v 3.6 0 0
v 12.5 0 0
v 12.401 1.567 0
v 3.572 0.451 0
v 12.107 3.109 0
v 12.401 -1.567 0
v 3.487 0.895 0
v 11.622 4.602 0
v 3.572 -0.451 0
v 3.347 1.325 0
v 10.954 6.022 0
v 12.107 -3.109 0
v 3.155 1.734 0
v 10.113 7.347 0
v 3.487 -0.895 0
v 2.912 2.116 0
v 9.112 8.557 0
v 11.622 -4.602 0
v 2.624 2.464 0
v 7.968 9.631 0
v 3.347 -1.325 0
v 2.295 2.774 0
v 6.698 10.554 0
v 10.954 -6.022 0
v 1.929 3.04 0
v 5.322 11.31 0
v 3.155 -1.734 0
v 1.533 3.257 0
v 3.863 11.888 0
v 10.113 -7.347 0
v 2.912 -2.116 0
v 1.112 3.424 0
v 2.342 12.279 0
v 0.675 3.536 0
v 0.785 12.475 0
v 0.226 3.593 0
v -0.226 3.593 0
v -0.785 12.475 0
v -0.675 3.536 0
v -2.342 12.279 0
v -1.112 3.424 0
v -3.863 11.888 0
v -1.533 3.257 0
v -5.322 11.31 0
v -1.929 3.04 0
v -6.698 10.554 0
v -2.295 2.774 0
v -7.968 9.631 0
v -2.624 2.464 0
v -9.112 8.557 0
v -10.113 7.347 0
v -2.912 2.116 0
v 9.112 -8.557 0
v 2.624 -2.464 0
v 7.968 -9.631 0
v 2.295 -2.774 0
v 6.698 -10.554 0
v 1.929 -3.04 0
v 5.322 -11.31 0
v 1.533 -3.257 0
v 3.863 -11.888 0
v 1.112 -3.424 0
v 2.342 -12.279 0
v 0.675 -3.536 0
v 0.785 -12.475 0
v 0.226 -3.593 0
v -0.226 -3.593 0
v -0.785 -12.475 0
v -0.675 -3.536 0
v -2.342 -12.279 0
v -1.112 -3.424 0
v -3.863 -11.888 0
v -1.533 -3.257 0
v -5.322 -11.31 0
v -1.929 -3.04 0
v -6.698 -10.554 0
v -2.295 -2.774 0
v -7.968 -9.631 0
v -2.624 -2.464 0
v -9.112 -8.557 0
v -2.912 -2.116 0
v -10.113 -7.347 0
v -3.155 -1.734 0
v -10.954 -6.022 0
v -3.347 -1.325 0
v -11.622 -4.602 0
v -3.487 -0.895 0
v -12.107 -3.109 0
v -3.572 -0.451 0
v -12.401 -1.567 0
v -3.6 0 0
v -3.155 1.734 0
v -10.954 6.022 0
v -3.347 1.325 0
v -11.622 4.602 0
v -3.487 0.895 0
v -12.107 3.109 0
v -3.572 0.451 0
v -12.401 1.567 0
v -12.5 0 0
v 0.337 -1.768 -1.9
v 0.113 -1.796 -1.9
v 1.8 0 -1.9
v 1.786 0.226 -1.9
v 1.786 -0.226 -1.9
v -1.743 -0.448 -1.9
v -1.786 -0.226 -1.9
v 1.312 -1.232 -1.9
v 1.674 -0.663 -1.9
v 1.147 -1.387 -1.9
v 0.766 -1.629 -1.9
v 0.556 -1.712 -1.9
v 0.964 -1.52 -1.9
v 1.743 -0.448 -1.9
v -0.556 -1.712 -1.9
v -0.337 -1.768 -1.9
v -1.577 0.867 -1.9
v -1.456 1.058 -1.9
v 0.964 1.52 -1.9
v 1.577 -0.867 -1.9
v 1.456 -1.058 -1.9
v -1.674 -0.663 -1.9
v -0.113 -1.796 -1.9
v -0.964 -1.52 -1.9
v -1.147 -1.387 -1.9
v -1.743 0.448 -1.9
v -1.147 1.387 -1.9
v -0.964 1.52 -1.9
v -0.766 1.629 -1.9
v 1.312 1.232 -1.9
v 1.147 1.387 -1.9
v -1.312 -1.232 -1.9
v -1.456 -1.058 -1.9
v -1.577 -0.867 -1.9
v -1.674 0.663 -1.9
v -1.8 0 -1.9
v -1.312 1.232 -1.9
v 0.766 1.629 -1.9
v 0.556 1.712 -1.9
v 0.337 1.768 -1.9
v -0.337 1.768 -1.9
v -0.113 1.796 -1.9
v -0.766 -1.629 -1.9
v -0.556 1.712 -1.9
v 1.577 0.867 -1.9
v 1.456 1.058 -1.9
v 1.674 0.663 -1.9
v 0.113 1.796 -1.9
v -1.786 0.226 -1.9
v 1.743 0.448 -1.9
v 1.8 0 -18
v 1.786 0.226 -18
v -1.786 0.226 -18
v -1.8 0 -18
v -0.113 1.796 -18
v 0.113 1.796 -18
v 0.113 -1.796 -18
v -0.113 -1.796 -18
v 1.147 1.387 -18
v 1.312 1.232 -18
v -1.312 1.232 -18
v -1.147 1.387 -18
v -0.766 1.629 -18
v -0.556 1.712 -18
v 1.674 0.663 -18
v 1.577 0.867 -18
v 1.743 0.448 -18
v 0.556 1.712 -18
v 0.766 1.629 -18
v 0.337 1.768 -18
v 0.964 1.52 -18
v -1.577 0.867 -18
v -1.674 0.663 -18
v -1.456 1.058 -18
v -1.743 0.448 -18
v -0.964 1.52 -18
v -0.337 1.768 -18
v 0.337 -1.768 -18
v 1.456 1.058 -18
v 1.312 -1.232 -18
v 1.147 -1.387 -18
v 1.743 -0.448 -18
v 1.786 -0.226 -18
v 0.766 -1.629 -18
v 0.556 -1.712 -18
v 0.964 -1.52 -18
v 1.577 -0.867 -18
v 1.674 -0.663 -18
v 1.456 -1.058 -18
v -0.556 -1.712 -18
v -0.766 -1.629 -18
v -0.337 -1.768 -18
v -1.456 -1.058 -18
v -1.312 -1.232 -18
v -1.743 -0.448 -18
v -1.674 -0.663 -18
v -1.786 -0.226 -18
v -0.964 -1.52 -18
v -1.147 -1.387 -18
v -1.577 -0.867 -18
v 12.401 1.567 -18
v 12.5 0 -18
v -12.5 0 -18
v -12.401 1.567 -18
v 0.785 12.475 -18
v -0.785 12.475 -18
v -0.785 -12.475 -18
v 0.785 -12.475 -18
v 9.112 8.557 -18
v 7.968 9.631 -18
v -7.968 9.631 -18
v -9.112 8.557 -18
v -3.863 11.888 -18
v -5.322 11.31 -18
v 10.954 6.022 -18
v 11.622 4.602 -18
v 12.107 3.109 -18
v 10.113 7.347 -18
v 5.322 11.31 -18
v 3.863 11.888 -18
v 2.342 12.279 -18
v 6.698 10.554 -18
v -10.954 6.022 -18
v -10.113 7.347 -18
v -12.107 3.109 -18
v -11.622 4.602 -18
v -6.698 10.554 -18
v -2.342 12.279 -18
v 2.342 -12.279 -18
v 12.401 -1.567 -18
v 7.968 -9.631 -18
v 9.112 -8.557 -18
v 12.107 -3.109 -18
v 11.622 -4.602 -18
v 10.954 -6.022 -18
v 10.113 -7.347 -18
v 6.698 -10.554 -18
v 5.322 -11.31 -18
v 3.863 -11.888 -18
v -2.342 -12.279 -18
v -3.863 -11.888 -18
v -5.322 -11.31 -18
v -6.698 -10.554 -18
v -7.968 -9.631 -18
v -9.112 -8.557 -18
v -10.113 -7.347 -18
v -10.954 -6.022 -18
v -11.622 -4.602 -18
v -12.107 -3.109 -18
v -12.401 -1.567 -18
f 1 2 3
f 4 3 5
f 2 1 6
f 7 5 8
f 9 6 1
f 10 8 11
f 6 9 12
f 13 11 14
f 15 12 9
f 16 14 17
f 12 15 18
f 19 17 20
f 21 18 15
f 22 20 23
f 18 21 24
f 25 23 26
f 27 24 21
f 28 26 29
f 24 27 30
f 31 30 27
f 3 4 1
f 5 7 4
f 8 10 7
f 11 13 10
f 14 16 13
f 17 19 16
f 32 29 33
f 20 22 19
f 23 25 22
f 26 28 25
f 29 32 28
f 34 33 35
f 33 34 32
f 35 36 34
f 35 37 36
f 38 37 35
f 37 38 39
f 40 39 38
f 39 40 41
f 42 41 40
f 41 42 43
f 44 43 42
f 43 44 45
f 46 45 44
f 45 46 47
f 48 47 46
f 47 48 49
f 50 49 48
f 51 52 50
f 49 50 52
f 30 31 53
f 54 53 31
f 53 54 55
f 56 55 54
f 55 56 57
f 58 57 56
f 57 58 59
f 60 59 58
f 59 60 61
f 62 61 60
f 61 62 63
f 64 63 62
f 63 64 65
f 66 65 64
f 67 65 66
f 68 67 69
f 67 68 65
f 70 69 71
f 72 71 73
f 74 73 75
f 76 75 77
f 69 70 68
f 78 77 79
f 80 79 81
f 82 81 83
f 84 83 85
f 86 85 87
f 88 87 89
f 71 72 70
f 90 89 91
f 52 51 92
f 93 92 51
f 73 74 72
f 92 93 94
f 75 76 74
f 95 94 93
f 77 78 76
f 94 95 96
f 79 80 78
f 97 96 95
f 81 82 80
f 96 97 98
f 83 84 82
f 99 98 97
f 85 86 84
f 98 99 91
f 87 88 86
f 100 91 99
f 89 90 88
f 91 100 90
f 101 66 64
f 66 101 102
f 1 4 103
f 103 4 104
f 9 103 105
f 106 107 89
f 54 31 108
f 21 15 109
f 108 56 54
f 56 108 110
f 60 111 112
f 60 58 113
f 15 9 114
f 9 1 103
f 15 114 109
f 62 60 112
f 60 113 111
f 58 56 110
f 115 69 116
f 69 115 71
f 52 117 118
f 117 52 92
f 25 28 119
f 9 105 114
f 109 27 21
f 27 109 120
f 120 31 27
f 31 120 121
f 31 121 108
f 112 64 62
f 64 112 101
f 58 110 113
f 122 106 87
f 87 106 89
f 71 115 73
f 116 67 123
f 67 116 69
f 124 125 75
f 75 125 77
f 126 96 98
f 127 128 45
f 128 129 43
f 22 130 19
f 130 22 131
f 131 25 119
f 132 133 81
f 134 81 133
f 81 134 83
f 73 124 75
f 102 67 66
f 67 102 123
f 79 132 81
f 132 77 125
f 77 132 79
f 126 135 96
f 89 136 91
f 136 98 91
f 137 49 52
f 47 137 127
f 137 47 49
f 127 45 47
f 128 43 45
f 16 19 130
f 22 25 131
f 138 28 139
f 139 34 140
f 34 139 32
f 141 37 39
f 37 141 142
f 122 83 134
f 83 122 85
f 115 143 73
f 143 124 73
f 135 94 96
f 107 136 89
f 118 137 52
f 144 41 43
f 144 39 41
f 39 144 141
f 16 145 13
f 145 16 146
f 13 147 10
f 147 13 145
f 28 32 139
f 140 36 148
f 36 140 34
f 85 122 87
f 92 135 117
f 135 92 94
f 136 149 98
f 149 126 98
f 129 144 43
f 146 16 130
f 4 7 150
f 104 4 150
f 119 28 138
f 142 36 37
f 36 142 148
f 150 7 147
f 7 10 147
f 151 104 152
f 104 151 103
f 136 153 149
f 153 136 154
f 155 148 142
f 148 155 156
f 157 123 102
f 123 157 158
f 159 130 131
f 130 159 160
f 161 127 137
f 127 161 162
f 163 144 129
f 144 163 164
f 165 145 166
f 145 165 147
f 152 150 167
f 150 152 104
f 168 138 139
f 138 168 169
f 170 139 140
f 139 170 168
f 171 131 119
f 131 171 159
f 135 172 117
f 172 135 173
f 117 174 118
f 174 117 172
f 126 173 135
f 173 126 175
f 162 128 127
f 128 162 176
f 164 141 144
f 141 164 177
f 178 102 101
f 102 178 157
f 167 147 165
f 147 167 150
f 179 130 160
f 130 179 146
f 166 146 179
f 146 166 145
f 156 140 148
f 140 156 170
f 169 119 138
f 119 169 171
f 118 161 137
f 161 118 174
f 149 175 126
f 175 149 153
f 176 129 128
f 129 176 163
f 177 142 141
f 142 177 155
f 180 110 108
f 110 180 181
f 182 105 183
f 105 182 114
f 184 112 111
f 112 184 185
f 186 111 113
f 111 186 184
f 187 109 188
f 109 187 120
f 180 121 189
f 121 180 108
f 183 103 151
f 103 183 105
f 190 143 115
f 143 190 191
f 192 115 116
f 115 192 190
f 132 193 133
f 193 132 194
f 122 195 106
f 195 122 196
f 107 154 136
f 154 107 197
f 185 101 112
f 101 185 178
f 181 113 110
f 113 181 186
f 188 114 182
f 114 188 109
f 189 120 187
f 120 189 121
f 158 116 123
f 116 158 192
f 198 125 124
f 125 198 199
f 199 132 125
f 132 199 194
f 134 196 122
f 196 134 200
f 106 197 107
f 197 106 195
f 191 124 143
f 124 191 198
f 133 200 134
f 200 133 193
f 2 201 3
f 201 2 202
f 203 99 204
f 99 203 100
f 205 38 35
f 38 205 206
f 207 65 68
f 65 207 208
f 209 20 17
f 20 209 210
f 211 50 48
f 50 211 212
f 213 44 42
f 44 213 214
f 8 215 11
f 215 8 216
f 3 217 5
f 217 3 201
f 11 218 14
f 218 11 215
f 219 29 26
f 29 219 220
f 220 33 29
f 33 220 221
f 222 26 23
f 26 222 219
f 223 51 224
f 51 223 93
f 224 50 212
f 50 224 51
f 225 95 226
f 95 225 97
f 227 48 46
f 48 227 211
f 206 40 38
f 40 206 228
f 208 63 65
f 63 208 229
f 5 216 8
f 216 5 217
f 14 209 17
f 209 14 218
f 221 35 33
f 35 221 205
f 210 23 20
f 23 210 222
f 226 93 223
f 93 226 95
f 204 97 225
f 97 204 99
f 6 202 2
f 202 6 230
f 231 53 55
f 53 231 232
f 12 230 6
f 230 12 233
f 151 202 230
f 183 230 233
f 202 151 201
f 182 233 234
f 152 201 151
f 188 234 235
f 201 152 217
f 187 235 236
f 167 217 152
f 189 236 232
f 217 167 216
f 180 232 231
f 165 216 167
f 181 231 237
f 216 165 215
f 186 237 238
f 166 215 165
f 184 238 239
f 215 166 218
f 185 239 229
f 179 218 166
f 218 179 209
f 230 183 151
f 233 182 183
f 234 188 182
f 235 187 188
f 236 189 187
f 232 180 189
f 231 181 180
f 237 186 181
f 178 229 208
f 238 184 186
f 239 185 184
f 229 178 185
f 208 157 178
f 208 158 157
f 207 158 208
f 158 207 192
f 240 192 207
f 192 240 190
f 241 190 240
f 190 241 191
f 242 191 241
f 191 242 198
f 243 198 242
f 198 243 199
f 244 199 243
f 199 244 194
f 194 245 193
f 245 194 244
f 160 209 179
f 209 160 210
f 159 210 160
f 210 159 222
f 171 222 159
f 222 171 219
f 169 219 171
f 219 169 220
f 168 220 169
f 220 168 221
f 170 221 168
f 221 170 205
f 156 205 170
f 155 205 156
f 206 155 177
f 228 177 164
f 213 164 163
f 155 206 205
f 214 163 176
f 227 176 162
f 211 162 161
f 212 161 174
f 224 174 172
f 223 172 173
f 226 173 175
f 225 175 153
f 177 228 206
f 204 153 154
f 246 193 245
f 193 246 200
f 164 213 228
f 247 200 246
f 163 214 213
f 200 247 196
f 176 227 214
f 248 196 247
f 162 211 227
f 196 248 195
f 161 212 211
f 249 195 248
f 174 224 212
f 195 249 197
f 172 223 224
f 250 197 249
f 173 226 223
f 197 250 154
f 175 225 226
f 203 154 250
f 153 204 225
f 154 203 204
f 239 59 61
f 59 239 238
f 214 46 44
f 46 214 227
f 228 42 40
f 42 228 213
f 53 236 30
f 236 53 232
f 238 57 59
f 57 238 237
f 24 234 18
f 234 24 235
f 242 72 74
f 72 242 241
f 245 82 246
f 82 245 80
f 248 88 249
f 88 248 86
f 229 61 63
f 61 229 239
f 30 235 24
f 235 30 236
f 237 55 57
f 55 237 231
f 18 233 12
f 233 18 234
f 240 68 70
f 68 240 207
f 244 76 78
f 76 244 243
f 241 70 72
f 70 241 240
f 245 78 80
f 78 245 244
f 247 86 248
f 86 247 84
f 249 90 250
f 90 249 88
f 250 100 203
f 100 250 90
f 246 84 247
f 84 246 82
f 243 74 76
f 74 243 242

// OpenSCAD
$fn = 50;

difference() {
	union() {
		translate(v = [0, 0, -18.0]) {
			cylinder(h = 18, r = 12.5);
		}
	}
	union() {
		translate(v = [0, 0, 0]) {
			rotate(a = [0, 0, 0]) {
				difference() {
					union() {
						translate(v = [0, 0, -21.0]) {
							cylinder(h = 21, r = 1.5);
						}
						translate(v = [0, 0, -1.9]) {
							cylinder(h = 1.9, r1 = 1.8, r2 = 3.6);
						}
						translate(v = [0, 0, -21.0]) {
							cylinder(h = 21, r = 1.8);
						}
						translate(v = [0, 0, -21.0]) {
							cylinder(h = 21, r = 1.5);
						}
					}
					union();
				}
			}
		}
	}
}
